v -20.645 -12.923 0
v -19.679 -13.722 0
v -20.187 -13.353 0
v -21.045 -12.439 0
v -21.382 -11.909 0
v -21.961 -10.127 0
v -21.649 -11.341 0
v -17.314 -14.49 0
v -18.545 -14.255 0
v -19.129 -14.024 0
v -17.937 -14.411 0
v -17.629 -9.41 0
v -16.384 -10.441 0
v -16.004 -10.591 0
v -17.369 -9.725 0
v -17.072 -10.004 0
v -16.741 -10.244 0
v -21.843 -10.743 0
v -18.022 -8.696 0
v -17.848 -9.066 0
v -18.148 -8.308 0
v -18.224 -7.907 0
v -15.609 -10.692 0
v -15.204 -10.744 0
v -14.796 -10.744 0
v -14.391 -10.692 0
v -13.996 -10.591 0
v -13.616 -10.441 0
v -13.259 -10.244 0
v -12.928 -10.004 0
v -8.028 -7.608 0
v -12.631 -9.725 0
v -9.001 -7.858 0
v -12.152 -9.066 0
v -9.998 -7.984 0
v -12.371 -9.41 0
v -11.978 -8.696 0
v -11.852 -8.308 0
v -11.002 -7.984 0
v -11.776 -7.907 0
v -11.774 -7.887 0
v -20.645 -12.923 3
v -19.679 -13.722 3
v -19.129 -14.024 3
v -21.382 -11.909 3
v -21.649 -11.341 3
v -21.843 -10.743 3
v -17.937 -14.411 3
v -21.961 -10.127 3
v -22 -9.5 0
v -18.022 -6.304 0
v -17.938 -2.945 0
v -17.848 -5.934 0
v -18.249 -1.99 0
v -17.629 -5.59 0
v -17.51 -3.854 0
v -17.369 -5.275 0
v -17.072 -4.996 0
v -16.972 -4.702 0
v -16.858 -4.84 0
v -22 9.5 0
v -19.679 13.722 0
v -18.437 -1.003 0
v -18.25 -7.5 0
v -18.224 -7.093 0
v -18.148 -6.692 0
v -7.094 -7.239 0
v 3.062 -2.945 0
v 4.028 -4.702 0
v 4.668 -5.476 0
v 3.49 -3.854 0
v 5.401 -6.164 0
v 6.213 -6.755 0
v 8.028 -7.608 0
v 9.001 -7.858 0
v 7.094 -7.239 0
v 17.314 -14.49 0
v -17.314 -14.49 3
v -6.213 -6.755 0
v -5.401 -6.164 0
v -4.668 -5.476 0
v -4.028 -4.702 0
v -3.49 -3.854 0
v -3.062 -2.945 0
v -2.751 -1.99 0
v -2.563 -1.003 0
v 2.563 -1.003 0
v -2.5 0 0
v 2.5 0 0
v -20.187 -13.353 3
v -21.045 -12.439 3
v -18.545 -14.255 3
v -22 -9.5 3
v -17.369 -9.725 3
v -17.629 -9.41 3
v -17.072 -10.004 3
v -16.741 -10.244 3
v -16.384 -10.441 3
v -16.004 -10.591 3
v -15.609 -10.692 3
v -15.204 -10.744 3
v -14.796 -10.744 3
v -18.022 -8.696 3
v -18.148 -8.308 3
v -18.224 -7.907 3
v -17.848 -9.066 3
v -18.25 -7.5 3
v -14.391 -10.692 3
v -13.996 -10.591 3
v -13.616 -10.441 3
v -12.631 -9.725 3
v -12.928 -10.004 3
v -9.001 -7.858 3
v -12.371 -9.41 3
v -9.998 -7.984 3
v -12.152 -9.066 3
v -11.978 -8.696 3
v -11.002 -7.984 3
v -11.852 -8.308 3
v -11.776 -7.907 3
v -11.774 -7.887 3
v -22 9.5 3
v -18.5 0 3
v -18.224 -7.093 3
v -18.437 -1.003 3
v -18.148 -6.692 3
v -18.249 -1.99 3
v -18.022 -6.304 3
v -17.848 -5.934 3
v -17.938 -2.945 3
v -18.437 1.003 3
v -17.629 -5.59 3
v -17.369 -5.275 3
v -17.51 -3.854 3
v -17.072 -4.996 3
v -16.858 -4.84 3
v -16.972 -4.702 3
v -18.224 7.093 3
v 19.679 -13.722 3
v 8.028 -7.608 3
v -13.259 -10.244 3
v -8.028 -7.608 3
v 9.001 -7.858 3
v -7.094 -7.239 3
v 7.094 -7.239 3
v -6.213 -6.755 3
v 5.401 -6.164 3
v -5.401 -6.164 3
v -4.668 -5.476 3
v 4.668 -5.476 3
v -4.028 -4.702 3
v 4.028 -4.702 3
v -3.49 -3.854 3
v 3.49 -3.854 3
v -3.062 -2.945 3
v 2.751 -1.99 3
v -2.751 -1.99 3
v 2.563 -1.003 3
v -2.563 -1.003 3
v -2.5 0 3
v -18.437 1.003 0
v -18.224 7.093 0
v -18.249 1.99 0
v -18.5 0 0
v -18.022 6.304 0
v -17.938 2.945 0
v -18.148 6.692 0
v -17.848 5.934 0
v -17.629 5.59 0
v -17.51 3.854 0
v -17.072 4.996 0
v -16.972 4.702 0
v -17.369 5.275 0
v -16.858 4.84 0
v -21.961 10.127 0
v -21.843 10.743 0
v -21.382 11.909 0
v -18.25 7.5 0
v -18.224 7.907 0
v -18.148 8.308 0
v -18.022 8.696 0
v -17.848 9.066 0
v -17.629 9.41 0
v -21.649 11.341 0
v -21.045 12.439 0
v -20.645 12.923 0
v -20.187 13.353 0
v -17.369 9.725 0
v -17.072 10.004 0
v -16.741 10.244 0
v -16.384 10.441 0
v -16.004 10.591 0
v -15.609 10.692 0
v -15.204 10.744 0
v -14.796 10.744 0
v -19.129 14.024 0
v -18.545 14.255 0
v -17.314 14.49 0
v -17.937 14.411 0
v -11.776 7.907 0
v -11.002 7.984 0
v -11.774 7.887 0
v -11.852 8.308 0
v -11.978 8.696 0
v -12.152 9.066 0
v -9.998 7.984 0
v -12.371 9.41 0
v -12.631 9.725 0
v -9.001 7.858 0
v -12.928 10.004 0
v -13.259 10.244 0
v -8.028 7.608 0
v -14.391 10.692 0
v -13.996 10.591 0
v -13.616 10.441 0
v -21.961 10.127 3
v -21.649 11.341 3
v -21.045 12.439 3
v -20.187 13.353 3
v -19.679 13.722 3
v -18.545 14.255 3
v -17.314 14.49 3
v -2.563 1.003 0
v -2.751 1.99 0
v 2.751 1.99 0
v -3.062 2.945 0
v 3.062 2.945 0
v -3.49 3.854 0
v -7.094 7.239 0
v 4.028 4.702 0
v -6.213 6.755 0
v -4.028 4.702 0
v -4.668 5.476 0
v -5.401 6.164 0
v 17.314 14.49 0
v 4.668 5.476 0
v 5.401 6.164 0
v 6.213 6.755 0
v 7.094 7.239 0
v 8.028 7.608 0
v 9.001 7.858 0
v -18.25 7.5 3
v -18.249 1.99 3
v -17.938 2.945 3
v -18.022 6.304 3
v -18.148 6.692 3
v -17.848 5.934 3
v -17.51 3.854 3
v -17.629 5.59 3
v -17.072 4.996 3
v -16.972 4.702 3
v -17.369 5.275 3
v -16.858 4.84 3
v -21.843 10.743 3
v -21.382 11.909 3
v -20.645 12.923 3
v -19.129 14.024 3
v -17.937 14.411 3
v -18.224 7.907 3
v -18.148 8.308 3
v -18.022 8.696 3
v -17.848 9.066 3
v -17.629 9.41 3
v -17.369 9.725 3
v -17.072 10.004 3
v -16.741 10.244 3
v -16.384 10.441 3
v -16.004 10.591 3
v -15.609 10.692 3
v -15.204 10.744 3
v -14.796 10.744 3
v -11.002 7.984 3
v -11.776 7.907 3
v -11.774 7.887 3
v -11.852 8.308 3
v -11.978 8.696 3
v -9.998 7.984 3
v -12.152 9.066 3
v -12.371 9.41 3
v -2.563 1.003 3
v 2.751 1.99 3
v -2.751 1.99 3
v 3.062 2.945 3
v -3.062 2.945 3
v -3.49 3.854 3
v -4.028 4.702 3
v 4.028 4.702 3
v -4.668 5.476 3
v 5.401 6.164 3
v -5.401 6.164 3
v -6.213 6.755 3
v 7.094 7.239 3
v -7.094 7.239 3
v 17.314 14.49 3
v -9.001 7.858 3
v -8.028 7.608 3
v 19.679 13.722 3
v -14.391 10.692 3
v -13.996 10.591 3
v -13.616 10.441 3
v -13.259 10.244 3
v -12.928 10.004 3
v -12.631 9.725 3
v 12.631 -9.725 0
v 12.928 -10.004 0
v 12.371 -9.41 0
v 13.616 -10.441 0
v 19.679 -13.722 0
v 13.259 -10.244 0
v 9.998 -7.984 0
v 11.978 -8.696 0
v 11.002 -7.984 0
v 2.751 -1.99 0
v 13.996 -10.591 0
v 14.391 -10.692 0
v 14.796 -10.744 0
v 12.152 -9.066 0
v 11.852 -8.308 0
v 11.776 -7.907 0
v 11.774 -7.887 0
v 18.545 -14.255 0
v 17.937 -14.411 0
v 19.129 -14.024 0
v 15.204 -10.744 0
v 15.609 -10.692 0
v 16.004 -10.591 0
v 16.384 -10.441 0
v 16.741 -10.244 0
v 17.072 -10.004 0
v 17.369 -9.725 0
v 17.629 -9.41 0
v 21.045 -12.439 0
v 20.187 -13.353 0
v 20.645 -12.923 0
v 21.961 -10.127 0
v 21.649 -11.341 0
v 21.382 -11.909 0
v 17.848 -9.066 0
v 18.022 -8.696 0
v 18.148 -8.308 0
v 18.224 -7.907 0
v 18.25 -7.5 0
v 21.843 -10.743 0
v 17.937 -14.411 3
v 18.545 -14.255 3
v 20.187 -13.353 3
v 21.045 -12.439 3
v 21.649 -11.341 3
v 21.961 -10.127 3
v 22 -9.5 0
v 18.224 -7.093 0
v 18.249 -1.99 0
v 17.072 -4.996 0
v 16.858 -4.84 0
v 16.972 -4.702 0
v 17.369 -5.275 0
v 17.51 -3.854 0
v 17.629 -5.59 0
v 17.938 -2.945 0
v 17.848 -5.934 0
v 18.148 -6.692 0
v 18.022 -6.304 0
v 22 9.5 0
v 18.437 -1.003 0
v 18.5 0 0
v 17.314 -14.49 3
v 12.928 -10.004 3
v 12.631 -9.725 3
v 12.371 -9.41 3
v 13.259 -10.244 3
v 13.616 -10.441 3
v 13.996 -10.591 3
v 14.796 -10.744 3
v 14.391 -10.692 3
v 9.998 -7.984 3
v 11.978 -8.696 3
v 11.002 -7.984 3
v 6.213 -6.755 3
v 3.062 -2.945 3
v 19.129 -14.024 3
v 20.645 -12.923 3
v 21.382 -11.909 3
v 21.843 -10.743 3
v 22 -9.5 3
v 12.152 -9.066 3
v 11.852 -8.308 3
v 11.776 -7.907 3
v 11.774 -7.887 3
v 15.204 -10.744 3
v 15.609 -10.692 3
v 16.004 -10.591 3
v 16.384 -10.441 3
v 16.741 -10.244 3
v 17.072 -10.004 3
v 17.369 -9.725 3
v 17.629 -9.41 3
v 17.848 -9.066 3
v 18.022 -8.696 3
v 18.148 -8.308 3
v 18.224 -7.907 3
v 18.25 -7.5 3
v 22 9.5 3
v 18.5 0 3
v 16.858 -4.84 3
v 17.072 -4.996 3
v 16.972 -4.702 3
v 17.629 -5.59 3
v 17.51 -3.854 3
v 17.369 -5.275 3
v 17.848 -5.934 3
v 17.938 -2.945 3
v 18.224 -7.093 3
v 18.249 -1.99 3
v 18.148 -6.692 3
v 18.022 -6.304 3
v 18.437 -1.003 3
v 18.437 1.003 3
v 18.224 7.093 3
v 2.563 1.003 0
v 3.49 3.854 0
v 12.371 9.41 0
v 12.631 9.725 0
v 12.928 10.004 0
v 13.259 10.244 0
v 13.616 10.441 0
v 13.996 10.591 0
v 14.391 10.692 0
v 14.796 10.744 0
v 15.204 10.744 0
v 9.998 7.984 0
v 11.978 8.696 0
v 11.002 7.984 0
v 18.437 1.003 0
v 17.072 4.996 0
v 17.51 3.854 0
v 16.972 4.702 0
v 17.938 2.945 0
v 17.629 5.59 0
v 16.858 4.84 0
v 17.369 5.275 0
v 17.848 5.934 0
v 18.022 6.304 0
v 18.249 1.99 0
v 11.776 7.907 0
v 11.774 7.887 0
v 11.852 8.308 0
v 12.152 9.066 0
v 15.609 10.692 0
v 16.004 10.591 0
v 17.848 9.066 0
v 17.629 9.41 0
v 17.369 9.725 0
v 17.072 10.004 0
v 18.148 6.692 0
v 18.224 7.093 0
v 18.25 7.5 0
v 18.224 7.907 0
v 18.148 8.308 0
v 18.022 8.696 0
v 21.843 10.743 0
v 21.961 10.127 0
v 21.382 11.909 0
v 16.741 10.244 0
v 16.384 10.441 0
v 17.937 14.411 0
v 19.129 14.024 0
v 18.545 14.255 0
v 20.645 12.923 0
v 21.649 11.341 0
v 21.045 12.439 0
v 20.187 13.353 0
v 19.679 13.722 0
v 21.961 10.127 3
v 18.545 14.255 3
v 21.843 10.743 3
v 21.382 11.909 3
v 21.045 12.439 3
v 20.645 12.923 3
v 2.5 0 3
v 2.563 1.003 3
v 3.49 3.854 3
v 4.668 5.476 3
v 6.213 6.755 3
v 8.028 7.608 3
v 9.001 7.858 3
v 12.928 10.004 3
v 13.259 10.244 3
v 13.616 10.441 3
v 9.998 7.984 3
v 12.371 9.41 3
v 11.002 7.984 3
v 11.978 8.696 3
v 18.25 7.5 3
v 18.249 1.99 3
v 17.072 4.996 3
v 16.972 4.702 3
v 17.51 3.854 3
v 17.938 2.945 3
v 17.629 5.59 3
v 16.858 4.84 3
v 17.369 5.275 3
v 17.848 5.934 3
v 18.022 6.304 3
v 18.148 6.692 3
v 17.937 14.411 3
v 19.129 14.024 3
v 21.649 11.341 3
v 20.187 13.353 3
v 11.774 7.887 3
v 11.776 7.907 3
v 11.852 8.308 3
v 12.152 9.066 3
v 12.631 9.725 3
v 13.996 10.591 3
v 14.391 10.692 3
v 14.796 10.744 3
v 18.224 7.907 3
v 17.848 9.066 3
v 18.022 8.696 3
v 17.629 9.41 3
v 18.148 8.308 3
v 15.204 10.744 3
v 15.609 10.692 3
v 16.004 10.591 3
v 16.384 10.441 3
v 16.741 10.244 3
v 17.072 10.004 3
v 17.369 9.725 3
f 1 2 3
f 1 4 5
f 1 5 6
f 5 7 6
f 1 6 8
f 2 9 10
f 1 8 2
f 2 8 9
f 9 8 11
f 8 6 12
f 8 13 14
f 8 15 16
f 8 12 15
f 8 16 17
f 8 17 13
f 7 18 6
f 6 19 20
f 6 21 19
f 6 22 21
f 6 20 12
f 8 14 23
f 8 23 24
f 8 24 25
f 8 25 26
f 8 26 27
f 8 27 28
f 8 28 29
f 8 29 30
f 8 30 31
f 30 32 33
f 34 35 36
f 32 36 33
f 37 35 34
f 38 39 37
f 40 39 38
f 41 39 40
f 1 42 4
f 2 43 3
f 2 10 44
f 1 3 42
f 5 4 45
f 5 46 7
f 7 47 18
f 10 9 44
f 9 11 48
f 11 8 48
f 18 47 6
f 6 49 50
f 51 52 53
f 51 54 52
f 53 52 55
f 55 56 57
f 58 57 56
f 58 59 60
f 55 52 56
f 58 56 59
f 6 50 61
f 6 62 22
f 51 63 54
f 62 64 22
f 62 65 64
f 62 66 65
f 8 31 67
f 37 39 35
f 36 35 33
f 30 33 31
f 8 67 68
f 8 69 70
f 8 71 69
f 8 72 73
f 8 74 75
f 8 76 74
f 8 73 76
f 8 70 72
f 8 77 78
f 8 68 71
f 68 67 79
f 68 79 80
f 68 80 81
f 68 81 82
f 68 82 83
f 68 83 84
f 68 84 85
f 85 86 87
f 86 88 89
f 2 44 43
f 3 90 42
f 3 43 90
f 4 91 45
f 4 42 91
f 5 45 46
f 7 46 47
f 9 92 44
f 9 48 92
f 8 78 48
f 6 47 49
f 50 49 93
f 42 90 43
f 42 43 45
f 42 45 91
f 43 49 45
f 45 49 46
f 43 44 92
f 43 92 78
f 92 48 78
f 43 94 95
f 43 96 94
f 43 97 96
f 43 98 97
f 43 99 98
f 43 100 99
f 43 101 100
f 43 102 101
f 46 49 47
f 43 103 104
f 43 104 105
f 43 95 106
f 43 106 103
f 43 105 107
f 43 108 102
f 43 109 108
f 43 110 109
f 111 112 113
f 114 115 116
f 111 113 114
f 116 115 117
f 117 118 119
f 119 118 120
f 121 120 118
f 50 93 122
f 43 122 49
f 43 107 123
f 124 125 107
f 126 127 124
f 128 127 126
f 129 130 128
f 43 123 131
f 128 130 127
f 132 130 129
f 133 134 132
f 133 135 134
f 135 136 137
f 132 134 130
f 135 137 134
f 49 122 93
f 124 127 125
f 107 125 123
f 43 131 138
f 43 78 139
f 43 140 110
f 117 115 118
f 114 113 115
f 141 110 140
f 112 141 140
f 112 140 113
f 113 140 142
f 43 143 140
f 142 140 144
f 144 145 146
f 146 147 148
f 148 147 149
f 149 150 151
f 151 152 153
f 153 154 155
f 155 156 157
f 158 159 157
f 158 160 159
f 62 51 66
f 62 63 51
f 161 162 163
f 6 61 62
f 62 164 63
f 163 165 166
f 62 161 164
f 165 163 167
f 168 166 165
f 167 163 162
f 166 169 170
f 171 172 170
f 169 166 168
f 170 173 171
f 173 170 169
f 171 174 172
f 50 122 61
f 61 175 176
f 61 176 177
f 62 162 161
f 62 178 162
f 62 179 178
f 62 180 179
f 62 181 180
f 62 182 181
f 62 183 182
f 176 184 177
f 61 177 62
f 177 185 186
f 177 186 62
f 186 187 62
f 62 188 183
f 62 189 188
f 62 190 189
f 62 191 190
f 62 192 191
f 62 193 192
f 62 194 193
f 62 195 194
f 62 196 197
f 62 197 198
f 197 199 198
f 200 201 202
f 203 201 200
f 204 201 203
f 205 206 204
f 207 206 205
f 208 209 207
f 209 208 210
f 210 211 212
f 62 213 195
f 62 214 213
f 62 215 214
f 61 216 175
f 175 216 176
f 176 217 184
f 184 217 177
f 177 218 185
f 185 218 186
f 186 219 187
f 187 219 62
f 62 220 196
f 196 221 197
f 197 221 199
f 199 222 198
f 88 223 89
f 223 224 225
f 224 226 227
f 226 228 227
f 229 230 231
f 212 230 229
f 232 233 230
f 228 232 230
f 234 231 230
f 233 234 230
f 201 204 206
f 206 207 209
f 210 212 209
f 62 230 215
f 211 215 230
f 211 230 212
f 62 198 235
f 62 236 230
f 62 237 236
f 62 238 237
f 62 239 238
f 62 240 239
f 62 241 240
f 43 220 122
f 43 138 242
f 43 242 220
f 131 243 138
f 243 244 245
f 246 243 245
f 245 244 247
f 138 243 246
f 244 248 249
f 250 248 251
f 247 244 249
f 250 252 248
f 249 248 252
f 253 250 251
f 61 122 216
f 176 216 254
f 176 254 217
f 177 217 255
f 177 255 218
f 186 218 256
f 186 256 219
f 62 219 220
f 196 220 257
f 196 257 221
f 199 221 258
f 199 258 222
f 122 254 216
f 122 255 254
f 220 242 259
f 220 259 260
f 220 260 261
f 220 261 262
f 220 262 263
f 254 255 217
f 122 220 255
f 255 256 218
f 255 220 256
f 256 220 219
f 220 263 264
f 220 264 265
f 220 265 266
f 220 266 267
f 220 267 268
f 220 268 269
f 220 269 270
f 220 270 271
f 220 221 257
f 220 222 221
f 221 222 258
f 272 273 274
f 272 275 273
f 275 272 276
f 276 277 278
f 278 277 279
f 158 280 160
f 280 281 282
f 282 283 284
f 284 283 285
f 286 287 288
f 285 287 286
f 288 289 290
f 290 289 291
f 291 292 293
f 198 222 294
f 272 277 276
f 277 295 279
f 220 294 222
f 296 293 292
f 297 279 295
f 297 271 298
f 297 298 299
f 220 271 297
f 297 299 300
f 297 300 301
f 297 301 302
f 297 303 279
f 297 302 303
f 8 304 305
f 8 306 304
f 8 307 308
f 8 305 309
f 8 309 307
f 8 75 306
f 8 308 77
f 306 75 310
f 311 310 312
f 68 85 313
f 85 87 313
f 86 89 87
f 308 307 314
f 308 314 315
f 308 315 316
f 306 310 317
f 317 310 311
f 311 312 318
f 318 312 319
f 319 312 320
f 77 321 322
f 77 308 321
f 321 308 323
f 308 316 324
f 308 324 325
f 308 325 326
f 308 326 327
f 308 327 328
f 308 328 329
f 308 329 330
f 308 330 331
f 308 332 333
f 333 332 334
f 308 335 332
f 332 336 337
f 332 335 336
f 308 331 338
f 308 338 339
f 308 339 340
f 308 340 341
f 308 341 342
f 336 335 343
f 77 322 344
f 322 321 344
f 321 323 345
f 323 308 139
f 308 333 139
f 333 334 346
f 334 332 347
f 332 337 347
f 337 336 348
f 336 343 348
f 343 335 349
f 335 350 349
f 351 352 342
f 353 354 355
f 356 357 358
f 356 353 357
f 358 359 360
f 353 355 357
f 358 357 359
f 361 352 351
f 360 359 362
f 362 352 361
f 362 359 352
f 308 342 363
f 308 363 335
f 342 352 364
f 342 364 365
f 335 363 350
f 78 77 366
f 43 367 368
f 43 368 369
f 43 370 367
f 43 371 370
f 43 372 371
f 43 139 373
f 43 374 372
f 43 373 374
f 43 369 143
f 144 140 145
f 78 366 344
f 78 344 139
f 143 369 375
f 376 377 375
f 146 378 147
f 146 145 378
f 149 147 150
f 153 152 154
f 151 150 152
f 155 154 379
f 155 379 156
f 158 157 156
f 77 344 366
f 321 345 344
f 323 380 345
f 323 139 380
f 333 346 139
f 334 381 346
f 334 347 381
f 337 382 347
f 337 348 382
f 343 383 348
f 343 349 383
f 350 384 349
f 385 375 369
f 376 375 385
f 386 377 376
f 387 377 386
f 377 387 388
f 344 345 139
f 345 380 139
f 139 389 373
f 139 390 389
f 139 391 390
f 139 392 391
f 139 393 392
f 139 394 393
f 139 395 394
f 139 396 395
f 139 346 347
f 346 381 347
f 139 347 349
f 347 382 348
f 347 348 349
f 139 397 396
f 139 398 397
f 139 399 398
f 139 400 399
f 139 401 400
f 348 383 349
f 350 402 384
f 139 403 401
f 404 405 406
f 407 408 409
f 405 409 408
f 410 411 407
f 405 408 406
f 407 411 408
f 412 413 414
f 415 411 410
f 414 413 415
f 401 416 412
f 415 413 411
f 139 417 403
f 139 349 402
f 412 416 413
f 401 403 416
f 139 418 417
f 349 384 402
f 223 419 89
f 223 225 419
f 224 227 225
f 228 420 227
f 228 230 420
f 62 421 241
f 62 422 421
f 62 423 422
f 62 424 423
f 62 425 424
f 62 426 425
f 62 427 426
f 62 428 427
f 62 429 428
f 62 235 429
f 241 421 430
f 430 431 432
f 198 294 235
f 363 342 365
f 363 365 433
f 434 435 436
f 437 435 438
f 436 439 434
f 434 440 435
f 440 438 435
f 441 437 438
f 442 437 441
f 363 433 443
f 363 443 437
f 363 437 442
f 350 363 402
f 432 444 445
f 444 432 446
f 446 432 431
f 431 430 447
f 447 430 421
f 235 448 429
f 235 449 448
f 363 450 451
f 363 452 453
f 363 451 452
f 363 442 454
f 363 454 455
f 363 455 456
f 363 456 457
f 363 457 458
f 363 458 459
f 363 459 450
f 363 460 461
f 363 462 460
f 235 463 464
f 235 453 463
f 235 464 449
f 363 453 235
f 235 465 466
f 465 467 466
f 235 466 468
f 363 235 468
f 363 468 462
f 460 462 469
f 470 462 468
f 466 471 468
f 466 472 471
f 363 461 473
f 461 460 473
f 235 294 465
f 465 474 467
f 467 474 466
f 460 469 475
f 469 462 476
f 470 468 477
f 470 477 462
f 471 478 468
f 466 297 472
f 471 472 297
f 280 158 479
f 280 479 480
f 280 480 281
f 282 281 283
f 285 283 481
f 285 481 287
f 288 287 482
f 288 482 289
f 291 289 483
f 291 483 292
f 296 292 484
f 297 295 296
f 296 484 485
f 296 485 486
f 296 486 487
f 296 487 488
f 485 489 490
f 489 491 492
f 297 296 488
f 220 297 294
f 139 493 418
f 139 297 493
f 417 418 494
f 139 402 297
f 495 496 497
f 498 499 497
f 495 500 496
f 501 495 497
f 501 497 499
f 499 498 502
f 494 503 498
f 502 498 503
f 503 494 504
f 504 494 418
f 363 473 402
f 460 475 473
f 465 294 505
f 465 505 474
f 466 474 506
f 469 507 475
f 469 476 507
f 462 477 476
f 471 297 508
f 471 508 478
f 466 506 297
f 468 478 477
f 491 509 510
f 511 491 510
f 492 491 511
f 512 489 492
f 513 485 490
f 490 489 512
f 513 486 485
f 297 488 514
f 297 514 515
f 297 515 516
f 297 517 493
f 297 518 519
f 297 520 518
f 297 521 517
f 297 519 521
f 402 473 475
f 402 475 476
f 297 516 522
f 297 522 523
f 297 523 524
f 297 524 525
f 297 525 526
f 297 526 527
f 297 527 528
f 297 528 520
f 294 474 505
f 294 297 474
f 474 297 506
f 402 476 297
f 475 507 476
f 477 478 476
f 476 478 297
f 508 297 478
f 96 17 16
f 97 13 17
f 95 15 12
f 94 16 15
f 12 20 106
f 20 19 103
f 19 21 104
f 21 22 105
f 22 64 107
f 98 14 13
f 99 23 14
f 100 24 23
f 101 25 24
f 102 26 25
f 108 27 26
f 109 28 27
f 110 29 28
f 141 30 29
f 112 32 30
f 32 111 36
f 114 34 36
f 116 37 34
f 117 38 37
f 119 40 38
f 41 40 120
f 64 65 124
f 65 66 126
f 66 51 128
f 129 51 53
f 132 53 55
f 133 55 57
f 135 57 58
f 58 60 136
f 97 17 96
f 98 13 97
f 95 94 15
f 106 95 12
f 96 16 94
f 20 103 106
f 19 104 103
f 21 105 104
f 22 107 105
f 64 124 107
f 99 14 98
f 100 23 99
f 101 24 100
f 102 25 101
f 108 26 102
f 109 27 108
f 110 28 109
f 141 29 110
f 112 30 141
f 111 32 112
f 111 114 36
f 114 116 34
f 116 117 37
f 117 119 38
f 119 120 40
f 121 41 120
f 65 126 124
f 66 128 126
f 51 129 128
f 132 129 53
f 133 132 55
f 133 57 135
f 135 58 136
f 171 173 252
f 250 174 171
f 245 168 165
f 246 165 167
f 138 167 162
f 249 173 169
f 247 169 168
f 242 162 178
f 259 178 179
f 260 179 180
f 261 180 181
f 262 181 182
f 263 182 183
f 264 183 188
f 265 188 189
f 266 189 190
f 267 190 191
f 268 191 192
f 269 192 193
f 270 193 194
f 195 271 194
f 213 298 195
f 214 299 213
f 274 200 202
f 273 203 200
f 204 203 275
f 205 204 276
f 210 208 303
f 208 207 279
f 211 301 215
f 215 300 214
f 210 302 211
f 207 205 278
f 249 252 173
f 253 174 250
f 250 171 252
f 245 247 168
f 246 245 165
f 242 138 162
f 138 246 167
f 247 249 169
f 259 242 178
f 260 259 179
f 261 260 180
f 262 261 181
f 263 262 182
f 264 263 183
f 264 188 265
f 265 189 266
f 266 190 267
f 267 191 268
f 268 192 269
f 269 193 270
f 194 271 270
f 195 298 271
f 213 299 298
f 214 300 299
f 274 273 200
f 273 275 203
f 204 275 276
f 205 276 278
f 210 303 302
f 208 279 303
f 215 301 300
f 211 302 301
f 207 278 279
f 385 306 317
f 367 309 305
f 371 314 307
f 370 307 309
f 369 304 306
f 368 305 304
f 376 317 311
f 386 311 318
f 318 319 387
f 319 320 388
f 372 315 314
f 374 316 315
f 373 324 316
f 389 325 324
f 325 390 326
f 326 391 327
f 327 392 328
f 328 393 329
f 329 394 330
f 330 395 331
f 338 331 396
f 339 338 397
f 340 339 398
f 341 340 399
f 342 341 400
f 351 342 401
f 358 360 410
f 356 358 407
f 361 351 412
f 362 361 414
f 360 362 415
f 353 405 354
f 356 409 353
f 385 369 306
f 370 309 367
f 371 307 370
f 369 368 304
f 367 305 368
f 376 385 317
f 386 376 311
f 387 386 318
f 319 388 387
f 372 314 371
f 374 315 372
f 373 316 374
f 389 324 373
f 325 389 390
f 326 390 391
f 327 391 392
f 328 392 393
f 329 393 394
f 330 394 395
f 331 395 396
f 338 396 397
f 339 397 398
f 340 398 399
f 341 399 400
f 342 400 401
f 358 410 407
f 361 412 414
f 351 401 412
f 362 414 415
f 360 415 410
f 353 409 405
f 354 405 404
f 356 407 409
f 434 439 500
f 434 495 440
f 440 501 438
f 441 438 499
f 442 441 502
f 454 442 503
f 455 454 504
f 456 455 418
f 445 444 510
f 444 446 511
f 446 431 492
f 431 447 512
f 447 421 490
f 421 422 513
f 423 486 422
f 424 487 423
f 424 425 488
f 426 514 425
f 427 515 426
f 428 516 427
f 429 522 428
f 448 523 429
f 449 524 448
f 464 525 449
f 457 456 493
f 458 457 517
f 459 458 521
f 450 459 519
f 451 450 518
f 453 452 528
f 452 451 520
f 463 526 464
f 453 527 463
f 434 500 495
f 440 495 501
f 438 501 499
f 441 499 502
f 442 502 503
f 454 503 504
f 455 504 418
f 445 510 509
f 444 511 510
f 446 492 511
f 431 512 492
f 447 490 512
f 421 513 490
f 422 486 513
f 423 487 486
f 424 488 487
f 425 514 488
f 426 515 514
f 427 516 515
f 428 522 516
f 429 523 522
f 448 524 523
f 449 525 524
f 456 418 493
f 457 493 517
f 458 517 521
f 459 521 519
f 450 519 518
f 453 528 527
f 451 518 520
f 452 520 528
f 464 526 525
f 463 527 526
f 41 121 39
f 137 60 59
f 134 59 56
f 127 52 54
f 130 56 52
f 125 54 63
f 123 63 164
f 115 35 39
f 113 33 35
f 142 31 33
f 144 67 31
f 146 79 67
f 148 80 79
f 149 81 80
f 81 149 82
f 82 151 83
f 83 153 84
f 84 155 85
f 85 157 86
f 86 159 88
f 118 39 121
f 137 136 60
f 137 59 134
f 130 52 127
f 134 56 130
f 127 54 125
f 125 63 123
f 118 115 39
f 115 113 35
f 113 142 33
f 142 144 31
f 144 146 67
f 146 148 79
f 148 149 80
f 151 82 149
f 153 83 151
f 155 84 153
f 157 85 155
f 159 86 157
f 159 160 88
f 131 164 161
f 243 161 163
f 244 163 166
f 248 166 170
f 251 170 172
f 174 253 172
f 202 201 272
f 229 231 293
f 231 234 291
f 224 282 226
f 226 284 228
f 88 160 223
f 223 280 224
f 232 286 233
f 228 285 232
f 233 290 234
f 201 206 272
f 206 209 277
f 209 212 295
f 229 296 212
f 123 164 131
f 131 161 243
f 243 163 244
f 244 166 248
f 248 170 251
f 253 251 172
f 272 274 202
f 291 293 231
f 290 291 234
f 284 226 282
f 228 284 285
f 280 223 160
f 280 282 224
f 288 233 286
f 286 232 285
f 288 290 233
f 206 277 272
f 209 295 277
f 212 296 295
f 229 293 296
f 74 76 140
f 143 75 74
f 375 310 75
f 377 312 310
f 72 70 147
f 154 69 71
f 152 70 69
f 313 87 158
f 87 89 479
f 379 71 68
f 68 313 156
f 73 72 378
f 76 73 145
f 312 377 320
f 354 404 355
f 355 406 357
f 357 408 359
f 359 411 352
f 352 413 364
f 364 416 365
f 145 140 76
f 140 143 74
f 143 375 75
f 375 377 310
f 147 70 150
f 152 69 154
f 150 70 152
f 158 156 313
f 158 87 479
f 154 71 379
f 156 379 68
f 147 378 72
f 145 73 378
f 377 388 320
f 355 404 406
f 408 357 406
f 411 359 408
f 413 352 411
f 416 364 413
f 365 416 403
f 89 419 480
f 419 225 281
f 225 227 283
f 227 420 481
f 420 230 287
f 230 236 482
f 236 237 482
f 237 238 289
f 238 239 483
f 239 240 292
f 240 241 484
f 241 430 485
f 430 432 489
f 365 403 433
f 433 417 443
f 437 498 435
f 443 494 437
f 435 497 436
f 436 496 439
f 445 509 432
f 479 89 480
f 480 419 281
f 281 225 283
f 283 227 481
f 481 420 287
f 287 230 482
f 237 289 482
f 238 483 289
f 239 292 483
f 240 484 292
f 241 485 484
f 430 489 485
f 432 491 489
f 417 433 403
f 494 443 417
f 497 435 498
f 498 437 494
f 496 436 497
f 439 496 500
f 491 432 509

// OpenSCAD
$fn = 50;

difference() {
	union() {
		hull() {
			translate(v = [-17.0, 9.5, 0]) {
				cylinder(h = 3, r = 5);
			}
			translate(v = [17.0, 9.5, 0]) {
				cylinder(h = 3, r = 5);
			}
			translate(v = [-17.0, -9.5, 0]) {
				cylinder(h = 3, r = 5);
			}
			translate(v = [17.0, -9.5, 0]) {
				cylinder(h = 3, r = 5);
			}
		}
	}
	union() {
		translate(v = [-15.0, -7.5, -100.0]) {
			cylinder(h = 200, r = 3.25);
		}
		translate(v = [-15.0, 7.5, -100.0]) {
			cylinder(h = 200, r = 3.25);
		}
		translate(v = [15.0, -7.5, -100.0]) {
			cylinder(h = 200, r = 3.25);
		}
		translate(v = [15.0, 7.5, -100.0]) {
			cylinder(h = 200, r = 3.25);
		}
		translate(v = [-15.0, -7.5, -100.0]) {
			cylinder(h = 200, r = 1.8);
		}
		translate(v = [-15.0, 7.5, -100.0]) {
			cylinder(h = 200, r = 1.8);
		}
		translate(v = [15.0, -7.5, -100.0]) {
			cylinder(h = 200, r = 1.8);
		}
		translate(v = [15.0, 7.5, -100.0]) {
			cylinder(h = 200, r = 1.8);
		}
		translate(v = [-10.5, 0, 0.0]) {
			cylinder(h = 3, r = 8.0);
		}
		translate(v = [10.5, 0, 0.0]) {
			cylinder(h = 3, r = 8.0);
		}
	}
}
